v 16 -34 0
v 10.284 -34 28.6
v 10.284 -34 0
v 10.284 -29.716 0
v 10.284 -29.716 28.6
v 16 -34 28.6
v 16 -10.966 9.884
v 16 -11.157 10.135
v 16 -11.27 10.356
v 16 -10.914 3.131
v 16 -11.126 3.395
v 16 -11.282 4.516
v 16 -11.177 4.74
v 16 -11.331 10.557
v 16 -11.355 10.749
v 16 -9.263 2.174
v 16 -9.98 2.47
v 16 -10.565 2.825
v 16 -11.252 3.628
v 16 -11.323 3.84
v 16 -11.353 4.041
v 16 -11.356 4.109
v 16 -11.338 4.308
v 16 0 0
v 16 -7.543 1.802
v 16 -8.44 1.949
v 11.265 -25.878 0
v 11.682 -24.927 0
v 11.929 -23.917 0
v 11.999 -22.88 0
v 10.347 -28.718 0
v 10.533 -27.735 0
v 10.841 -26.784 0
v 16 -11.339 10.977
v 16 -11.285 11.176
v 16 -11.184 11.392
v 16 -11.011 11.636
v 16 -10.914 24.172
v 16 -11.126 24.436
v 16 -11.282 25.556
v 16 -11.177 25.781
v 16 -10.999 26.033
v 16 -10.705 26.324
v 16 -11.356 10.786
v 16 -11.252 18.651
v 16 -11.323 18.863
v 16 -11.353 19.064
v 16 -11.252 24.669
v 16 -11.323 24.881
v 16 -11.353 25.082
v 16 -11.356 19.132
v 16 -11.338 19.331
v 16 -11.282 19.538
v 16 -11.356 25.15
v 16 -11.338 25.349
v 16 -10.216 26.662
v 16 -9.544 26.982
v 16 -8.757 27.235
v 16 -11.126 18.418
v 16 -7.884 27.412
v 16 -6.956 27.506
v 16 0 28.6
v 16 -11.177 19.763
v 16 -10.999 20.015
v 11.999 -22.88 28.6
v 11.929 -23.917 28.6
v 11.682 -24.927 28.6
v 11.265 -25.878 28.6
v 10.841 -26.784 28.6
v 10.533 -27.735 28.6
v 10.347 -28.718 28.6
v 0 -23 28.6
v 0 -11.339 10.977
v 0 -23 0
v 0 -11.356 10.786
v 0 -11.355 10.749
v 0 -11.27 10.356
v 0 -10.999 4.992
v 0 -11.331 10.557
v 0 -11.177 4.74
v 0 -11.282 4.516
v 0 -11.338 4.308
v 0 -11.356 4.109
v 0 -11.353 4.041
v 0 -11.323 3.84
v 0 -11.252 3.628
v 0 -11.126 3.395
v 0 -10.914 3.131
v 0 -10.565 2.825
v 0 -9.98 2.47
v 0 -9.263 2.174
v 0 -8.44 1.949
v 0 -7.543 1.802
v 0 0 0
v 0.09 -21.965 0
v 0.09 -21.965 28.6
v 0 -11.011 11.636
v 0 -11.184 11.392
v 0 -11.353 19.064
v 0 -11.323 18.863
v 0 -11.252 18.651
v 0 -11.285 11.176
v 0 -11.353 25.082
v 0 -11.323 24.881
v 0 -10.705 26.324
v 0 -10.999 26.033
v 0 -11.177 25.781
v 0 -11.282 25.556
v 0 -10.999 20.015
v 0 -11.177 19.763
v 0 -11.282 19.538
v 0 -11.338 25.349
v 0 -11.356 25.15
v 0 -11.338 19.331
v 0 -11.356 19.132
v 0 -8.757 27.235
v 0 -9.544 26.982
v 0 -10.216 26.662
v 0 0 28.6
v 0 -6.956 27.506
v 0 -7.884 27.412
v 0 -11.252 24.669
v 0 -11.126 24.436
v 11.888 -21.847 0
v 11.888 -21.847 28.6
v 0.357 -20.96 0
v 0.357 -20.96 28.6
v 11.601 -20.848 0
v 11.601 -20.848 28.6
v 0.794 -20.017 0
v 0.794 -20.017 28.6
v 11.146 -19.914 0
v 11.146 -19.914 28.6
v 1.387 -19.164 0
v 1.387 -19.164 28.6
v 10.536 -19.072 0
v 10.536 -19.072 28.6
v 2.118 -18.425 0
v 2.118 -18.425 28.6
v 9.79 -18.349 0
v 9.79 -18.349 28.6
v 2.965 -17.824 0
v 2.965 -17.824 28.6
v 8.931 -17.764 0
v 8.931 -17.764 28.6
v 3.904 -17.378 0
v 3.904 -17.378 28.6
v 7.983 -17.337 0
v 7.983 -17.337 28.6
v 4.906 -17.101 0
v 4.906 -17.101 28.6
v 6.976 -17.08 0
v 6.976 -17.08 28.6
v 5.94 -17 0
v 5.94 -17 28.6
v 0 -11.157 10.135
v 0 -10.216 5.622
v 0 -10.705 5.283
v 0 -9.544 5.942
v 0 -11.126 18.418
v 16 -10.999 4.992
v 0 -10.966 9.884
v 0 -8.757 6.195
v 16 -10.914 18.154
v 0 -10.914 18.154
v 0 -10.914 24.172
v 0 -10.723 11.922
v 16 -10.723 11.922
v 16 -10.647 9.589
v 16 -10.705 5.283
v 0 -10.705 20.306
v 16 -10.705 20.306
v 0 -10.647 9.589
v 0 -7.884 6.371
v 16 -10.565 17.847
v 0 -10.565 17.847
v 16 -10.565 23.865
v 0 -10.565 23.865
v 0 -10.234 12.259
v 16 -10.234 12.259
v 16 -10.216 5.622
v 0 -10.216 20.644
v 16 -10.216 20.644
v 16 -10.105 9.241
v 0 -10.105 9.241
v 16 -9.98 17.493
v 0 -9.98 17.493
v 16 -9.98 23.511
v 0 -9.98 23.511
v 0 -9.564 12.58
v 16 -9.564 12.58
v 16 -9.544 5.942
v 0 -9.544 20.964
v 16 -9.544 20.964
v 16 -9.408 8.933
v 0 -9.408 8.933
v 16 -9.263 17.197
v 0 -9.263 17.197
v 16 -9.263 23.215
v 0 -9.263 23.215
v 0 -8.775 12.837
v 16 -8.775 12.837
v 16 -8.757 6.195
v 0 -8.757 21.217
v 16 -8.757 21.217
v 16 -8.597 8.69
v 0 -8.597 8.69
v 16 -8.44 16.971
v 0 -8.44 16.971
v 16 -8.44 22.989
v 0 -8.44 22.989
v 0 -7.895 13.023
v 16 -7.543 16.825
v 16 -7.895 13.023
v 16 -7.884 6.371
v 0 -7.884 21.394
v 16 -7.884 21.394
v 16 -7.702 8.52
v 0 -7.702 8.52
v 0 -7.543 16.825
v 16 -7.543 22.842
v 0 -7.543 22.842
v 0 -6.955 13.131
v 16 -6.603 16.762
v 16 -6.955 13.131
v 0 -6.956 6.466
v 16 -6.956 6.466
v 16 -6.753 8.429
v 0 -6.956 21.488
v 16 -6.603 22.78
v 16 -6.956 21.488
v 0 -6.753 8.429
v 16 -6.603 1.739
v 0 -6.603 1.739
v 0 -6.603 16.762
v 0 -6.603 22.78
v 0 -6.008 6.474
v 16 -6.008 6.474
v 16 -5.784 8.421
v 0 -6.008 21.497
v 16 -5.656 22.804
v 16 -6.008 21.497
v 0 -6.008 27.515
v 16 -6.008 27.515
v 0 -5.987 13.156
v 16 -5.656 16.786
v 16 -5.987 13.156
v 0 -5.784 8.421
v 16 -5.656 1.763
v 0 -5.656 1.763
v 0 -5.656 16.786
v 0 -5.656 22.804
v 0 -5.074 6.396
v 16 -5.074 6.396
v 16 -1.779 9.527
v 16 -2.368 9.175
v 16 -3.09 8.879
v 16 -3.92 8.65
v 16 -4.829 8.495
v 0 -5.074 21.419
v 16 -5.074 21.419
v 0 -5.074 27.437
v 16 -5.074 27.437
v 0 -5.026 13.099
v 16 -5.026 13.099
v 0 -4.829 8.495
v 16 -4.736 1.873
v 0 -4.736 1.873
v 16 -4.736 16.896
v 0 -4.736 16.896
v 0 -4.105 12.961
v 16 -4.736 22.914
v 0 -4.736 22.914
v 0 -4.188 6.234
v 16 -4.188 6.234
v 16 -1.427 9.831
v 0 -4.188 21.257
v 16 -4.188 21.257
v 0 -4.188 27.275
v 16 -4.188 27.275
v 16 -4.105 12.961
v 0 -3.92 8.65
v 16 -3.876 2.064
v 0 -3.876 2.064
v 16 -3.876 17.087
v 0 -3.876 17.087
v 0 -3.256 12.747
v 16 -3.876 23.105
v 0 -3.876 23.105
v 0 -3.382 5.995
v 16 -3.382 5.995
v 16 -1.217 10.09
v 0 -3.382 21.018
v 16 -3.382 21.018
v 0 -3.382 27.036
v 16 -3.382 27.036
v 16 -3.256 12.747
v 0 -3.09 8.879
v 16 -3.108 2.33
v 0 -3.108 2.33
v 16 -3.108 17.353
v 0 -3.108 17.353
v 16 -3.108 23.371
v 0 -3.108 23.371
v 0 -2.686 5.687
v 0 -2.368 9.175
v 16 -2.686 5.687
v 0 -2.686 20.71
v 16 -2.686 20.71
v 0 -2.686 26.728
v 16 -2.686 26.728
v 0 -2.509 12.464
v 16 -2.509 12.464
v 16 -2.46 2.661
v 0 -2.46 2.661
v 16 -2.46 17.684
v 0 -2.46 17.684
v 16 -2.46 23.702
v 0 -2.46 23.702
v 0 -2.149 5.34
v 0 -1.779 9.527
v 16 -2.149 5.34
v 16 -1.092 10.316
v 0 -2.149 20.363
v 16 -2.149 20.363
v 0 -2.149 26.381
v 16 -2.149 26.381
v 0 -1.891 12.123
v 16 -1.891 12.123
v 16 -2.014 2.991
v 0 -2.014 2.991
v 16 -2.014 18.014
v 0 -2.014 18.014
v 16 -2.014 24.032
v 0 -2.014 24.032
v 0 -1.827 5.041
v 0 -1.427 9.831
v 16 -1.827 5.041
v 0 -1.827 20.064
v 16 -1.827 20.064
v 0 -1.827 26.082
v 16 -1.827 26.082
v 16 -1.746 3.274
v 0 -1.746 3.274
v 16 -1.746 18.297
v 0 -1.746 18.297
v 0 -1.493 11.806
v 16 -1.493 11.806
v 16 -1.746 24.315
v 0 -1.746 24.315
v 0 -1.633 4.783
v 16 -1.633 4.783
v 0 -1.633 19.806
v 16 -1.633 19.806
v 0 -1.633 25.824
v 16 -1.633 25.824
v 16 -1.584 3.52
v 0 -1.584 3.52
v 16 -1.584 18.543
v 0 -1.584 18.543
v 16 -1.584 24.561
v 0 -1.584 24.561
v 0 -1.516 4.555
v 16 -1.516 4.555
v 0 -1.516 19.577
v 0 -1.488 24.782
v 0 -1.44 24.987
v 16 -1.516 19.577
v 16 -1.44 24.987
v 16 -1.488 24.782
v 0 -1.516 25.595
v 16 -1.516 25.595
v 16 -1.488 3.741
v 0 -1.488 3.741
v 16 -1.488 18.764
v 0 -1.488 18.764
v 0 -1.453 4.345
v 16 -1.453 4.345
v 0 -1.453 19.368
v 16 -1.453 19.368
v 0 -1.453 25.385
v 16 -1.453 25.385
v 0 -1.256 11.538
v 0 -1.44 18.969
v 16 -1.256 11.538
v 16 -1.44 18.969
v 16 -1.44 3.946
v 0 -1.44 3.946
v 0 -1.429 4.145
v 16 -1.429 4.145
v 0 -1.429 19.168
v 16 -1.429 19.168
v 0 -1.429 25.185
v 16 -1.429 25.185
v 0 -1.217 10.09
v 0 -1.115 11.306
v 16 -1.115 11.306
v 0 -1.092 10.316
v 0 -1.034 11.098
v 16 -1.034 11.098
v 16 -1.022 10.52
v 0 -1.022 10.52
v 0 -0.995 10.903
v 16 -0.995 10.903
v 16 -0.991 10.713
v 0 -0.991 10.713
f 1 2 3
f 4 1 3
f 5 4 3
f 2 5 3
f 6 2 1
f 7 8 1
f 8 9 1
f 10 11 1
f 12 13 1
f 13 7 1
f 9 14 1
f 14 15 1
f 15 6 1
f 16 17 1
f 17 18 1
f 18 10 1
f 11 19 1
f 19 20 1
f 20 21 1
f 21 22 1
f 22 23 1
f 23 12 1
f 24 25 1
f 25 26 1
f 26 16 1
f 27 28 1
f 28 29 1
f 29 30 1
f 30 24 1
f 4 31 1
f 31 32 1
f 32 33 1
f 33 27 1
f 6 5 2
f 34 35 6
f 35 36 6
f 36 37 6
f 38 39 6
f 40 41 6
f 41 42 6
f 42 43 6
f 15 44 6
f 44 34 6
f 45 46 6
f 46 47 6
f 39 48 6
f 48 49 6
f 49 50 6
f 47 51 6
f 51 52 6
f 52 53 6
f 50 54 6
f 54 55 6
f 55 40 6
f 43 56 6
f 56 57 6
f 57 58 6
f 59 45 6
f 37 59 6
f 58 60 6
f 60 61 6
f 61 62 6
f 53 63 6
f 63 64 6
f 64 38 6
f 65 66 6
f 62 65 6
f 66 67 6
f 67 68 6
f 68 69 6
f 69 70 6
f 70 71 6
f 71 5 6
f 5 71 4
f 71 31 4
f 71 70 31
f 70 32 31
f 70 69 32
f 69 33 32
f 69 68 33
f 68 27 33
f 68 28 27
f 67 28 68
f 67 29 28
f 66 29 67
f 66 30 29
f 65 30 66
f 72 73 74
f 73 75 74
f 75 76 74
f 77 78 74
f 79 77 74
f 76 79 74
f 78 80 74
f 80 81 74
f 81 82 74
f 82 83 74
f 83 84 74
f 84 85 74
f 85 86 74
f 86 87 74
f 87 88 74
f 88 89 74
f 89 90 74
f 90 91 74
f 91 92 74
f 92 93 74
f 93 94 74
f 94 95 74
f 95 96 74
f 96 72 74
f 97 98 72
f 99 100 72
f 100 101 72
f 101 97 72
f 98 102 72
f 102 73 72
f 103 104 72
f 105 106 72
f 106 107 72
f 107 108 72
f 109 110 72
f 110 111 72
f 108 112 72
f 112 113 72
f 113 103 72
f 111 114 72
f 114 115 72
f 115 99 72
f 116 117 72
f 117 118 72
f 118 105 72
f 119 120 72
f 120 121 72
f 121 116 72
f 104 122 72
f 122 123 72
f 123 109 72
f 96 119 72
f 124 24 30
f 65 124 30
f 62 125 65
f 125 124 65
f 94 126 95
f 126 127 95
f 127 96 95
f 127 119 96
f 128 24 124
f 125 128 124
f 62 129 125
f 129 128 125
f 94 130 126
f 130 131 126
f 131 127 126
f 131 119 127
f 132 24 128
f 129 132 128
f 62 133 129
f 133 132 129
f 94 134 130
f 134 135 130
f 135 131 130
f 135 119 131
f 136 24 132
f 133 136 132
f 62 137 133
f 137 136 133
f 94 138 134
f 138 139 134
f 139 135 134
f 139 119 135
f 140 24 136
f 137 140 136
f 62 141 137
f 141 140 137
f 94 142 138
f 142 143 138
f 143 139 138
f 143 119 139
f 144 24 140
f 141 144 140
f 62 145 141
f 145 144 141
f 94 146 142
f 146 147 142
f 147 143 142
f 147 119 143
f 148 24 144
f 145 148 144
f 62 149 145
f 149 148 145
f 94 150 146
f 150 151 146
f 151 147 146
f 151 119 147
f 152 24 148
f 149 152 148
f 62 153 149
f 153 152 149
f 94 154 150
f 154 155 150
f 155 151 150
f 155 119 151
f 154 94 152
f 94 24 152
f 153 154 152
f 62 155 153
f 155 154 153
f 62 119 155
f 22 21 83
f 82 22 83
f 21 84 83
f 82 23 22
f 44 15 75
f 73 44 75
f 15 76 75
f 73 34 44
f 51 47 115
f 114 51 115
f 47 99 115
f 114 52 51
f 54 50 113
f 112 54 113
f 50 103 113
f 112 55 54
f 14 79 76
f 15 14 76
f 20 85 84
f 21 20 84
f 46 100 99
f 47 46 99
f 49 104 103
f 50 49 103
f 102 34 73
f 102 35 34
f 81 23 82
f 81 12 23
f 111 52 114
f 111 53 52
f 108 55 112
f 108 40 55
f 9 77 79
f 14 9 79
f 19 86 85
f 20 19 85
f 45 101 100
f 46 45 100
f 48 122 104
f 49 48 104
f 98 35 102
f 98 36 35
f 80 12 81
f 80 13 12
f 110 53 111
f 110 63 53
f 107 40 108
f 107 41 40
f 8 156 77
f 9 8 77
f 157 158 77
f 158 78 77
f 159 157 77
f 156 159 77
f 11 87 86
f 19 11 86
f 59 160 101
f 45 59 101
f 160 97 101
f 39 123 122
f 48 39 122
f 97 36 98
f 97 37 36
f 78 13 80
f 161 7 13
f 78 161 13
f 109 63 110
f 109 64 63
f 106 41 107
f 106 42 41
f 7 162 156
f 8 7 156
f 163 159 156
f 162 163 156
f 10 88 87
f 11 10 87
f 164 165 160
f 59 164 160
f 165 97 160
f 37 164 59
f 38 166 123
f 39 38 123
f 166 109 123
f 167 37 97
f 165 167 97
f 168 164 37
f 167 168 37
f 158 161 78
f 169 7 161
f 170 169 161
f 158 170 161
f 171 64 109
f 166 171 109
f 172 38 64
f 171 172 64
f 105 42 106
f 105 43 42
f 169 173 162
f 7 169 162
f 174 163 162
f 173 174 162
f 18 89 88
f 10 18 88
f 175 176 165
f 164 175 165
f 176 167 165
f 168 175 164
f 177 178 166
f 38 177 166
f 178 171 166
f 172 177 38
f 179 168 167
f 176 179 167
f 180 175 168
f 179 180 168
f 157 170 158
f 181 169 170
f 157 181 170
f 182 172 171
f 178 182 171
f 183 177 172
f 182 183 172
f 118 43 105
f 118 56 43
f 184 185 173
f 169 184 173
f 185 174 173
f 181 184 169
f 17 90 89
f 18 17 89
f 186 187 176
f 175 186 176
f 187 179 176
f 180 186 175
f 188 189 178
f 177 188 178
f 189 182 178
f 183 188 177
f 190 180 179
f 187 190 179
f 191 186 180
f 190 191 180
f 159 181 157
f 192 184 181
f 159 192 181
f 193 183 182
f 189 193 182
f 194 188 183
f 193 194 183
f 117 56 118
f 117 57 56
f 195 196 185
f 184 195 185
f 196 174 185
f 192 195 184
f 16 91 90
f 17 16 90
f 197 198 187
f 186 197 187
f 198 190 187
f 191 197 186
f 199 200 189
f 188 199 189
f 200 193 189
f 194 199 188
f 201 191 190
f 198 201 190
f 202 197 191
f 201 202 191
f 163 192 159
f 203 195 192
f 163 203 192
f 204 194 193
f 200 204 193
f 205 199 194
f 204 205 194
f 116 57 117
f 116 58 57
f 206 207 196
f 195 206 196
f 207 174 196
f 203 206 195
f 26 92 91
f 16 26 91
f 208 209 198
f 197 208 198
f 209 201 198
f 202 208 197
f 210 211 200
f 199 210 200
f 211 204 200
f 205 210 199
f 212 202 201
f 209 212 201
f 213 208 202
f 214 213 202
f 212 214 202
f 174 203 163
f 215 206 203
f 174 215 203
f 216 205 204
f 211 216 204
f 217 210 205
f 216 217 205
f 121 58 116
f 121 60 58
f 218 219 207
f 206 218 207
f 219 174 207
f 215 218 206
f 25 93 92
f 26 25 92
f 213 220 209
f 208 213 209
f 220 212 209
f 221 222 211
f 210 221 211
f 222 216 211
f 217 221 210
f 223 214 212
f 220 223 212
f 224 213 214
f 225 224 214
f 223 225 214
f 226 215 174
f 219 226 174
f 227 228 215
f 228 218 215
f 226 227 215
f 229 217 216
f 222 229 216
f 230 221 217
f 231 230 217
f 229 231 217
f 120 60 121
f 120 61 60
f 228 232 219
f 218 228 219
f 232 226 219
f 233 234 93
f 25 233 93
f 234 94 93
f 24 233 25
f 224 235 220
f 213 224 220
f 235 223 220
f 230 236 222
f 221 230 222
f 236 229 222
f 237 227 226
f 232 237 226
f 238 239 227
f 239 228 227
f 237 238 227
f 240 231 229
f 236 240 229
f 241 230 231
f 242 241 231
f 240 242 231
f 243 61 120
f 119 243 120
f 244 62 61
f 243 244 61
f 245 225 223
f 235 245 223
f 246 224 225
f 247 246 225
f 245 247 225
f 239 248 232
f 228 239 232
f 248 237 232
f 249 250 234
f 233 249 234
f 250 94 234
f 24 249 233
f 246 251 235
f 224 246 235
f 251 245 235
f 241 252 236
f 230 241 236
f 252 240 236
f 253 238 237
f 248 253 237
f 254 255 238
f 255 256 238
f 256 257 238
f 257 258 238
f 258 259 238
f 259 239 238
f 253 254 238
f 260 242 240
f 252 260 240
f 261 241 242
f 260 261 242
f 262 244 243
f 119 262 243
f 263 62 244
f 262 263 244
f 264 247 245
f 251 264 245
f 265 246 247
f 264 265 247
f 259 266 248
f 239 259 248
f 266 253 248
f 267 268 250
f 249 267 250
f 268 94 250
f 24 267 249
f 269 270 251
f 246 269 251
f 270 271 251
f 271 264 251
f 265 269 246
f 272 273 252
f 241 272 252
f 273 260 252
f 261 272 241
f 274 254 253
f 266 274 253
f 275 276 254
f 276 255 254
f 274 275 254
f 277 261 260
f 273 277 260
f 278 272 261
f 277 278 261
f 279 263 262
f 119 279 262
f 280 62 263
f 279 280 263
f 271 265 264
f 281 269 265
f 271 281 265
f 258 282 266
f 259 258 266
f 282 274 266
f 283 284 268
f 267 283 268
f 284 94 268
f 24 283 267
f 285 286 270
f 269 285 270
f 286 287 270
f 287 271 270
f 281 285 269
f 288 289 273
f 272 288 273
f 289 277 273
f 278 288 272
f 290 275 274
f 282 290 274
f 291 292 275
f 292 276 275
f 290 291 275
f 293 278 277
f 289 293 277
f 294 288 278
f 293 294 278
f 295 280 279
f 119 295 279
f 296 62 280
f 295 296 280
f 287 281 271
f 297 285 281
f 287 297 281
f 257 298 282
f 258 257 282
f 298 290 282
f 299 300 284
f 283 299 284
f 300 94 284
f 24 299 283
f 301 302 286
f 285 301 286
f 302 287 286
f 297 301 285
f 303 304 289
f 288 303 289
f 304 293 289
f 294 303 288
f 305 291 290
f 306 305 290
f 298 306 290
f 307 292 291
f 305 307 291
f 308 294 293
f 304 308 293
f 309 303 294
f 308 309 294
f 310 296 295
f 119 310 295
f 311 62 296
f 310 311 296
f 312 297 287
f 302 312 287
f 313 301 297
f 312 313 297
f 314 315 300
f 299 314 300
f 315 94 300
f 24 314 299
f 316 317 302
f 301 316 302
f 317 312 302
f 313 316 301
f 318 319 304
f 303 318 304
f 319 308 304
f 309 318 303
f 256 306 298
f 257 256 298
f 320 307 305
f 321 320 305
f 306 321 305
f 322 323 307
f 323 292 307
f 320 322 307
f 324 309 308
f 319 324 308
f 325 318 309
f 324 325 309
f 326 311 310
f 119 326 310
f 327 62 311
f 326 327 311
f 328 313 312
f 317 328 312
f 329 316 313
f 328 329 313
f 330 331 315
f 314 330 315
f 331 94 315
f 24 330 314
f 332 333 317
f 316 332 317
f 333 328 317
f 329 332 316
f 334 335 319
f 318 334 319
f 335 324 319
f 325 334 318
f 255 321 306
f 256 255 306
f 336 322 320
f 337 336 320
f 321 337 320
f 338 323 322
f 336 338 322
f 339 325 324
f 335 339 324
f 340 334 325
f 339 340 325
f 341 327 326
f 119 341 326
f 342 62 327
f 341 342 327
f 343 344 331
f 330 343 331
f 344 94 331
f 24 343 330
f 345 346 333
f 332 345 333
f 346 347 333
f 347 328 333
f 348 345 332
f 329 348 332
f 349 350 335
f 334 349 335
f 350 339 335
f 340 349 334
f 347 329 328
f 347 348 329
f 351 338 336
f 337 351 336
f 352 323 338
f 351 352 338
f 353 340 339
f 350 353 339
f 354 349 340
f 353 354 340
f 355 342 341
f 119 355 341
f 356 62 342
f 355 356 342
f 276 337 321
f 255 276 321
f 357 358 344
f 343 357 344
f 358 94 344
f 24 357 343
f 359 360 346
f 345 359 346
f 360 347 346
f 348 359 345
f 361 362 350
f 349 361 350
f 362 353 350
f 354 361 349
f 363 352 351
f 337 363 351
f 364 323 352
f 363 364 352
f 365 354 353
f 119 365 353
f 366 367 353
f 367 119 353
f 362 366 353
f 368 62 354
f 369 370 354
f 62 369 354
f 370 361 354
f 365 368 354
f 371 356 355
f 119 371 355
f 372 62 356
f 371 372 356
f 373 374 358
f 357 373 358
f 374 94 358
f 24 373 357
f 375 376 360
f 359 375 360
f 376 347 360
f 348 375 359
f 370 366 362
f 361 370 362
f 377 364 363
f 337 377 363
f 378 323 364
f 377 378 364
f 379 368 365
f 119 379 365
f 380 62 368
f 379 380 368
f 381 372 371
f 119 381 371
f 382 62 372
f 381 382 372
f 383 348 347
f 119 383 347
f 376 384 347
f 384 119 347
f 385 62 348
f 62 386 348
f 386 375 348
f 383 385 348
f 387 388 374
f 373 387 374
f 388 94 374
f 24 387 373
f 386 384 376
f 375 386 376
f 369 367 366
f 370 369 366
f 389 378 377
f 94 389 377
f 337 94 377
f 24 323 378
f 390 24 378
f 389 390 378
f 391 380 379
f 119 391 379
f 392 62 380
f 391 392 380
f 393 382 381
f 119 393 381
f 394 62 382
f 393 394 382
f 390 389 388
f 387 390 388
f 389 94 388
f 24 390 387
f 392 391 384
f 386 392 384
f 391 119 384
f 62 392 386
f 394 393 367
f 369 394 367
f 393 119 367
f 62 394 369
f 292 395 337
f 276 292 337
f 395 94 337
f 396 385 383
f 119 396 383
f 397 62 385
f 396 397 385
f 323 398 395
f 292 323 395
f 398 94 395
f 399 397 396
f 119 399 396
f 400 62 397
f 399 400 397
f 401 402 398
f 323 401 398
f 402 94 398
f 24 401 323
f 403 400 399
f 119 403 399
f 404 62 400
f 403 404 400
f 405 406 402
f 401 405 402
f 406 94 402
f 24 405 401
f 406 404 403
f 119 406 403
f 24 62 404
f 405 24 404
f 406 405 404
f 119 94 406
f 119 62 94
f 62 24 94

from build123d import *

# Parameters (mm, degrees)
SKETCH_1_W               = 16
SKETCH_1_H               = 34
EXTRUDE_1_DEPTH          = 28.6
CUT_EXTRUDE_3_DEPTH      = 48.222452287
CUT_EXTRUDE_3_DEPTH_BACK = 48.222452287
SKETCH_5_W               = 28.6
SKETCH_5_H               = 11
CUT_EXTRUDE_4_DEPTH      = 2
CUT_EXTRUDE_5_DEPTH      = 48.222452287
CUT_EXTRUDE_5_DEPTH_BACK = 48.222452287
SKETCH_9_RX              = 4.963641166
SKETCH_9_RY              = 2.372005513
CUT_EXTRUDE_6_DEPTH      = 48.222452453
CUT_EXTRUDE_6_DEPTH_BACK = 48.222452453
SKETCH_9_3_RX            = 4.963641166
SKETCH_9_3_RY            = 2.372005513
SKETCH_9_3_RX_2          = 5.183271306


with BuildPart() as part:
    # 草图1 → 凸台-拉伸1 (new body)
    with BuildSketch(Plane.XY):
        with Locations((8, -17)):
            Rectangle(SKETCH_1_W, SKETCH_1_H)
    extrude(amount=EXTRUDE_1_DEPTH)

    # 草图2 → 切除-拉伸3 (cut, two sides: drawn at the far end of the back side and taken through both)
    with BuildSketch(Plane.XY.offset(28.6).offset(-CUT_EXTRUDE_3_DEPTH_BACK)):
        with BuildLine():
            Line((10.284151777, -34), (10.284151777, -29.7156247))
            ThreePointArc((10.284151777, -29.7156247), (10.533147893, -27.735236154), (11.264636476, -25.878124872))
            ThreePointArc((11.264636476, -25.878124872), (7.278286447, -17.137749258), (0.015079207, -23.4251154))
            Line((0.015079207, -23.4251154), (0, -34))
            Line((0, -34), (10.284151777, -34))
        make_face()
    extrude(amount=CUT_EXTRUDE_3_DEPTH + CUT_EXTRUDE_3_DEPTH_BACK, mode=Mode.SUBTRACT)


with BuildPart() as cut_extrude_3_piece_1:
    # of the separate pieces the step leaves, piece 1, a body of its own (cut_extrude_3_pieces)
    add(part.part.solids().sort_by_distance((0, 0, 0))[0])

    # 草图9 → 切除-拉伸5 (cut, two sides: drawn at the far end of the back side and taken through both)
    with BuildSketch(Plane.ZY.offset(-CUT_EXTRUDE_5_DEPTH_BACK)):
        with Locations(Location((4.109179501, -6.391876735), (0, 0, -90))):
            Ellipse(SKETCH_9_RX, SKETCH_9_RY)
    extrude(amount=CUT_EXTRUDE_5_DEPTH + CUT_EXTRUDE_5_DEPTH_BACK, mode=Mode.SUBTRACT)

    # 草图9<3> → 切除-拉伸6 (cut, two sides: drawn at the far end of the back side and taken through both)
    with BuildSketch(Plane.ZY.offset(-CUT_EXTRUDE_6_DEPTH_BACK)):
        with Locations(Location((4.109179501, -6.391876735), (0, 0, -90))):
            Ellipse(SKETCH_9_3_RX, SKETCH_9_3_RY)
        with Locations(Location((10.785935759, -6.172246595), (0, 0, 90))):
            Ellipse(SKETCH_9_3_RX_2, SKETCH_9_3_RY)
        with Locations(Location((19.131881081, -6.391876735), (0, 0, -90))):
            Ellipse(SKETCH_9_3_RX, SKETCH_9_3_RY)
        with Locations(Location((25.149746919, -6.391876735), (0, 0, -90))):
            Ellipse(SKETCH_9_3_RX, SKETCH_9_3_RY)
    extrude(amount=CUT_EXTRUDE_6_DEPTH + CUT_EXTRUDE_6_DEPTH_BACK, mode=Mode.SUBTRACT)


with BuildPart() as cut_extrude_3_piece_2:
    # of the separate pieces the step leaves, piece 2, a body of its own (cut_extrude_3_pieces)
    add(part.part.solids().sort_by_distance((0, -34, 0))[0])

    # 草图5 → 切除-拉伸4 (cut)
    with BuildSketch(Plane.ZY):
        with Locations((14.3, -28.5)):
            Rectangle(SKETCH_5_W, SKETCH_5_H)
    extrude(amount=-CUT_EXTRUDE_4_DEPTH, mode=Mode.SUBTRACT)


solid = cut_extrude_3_piece_1.part
